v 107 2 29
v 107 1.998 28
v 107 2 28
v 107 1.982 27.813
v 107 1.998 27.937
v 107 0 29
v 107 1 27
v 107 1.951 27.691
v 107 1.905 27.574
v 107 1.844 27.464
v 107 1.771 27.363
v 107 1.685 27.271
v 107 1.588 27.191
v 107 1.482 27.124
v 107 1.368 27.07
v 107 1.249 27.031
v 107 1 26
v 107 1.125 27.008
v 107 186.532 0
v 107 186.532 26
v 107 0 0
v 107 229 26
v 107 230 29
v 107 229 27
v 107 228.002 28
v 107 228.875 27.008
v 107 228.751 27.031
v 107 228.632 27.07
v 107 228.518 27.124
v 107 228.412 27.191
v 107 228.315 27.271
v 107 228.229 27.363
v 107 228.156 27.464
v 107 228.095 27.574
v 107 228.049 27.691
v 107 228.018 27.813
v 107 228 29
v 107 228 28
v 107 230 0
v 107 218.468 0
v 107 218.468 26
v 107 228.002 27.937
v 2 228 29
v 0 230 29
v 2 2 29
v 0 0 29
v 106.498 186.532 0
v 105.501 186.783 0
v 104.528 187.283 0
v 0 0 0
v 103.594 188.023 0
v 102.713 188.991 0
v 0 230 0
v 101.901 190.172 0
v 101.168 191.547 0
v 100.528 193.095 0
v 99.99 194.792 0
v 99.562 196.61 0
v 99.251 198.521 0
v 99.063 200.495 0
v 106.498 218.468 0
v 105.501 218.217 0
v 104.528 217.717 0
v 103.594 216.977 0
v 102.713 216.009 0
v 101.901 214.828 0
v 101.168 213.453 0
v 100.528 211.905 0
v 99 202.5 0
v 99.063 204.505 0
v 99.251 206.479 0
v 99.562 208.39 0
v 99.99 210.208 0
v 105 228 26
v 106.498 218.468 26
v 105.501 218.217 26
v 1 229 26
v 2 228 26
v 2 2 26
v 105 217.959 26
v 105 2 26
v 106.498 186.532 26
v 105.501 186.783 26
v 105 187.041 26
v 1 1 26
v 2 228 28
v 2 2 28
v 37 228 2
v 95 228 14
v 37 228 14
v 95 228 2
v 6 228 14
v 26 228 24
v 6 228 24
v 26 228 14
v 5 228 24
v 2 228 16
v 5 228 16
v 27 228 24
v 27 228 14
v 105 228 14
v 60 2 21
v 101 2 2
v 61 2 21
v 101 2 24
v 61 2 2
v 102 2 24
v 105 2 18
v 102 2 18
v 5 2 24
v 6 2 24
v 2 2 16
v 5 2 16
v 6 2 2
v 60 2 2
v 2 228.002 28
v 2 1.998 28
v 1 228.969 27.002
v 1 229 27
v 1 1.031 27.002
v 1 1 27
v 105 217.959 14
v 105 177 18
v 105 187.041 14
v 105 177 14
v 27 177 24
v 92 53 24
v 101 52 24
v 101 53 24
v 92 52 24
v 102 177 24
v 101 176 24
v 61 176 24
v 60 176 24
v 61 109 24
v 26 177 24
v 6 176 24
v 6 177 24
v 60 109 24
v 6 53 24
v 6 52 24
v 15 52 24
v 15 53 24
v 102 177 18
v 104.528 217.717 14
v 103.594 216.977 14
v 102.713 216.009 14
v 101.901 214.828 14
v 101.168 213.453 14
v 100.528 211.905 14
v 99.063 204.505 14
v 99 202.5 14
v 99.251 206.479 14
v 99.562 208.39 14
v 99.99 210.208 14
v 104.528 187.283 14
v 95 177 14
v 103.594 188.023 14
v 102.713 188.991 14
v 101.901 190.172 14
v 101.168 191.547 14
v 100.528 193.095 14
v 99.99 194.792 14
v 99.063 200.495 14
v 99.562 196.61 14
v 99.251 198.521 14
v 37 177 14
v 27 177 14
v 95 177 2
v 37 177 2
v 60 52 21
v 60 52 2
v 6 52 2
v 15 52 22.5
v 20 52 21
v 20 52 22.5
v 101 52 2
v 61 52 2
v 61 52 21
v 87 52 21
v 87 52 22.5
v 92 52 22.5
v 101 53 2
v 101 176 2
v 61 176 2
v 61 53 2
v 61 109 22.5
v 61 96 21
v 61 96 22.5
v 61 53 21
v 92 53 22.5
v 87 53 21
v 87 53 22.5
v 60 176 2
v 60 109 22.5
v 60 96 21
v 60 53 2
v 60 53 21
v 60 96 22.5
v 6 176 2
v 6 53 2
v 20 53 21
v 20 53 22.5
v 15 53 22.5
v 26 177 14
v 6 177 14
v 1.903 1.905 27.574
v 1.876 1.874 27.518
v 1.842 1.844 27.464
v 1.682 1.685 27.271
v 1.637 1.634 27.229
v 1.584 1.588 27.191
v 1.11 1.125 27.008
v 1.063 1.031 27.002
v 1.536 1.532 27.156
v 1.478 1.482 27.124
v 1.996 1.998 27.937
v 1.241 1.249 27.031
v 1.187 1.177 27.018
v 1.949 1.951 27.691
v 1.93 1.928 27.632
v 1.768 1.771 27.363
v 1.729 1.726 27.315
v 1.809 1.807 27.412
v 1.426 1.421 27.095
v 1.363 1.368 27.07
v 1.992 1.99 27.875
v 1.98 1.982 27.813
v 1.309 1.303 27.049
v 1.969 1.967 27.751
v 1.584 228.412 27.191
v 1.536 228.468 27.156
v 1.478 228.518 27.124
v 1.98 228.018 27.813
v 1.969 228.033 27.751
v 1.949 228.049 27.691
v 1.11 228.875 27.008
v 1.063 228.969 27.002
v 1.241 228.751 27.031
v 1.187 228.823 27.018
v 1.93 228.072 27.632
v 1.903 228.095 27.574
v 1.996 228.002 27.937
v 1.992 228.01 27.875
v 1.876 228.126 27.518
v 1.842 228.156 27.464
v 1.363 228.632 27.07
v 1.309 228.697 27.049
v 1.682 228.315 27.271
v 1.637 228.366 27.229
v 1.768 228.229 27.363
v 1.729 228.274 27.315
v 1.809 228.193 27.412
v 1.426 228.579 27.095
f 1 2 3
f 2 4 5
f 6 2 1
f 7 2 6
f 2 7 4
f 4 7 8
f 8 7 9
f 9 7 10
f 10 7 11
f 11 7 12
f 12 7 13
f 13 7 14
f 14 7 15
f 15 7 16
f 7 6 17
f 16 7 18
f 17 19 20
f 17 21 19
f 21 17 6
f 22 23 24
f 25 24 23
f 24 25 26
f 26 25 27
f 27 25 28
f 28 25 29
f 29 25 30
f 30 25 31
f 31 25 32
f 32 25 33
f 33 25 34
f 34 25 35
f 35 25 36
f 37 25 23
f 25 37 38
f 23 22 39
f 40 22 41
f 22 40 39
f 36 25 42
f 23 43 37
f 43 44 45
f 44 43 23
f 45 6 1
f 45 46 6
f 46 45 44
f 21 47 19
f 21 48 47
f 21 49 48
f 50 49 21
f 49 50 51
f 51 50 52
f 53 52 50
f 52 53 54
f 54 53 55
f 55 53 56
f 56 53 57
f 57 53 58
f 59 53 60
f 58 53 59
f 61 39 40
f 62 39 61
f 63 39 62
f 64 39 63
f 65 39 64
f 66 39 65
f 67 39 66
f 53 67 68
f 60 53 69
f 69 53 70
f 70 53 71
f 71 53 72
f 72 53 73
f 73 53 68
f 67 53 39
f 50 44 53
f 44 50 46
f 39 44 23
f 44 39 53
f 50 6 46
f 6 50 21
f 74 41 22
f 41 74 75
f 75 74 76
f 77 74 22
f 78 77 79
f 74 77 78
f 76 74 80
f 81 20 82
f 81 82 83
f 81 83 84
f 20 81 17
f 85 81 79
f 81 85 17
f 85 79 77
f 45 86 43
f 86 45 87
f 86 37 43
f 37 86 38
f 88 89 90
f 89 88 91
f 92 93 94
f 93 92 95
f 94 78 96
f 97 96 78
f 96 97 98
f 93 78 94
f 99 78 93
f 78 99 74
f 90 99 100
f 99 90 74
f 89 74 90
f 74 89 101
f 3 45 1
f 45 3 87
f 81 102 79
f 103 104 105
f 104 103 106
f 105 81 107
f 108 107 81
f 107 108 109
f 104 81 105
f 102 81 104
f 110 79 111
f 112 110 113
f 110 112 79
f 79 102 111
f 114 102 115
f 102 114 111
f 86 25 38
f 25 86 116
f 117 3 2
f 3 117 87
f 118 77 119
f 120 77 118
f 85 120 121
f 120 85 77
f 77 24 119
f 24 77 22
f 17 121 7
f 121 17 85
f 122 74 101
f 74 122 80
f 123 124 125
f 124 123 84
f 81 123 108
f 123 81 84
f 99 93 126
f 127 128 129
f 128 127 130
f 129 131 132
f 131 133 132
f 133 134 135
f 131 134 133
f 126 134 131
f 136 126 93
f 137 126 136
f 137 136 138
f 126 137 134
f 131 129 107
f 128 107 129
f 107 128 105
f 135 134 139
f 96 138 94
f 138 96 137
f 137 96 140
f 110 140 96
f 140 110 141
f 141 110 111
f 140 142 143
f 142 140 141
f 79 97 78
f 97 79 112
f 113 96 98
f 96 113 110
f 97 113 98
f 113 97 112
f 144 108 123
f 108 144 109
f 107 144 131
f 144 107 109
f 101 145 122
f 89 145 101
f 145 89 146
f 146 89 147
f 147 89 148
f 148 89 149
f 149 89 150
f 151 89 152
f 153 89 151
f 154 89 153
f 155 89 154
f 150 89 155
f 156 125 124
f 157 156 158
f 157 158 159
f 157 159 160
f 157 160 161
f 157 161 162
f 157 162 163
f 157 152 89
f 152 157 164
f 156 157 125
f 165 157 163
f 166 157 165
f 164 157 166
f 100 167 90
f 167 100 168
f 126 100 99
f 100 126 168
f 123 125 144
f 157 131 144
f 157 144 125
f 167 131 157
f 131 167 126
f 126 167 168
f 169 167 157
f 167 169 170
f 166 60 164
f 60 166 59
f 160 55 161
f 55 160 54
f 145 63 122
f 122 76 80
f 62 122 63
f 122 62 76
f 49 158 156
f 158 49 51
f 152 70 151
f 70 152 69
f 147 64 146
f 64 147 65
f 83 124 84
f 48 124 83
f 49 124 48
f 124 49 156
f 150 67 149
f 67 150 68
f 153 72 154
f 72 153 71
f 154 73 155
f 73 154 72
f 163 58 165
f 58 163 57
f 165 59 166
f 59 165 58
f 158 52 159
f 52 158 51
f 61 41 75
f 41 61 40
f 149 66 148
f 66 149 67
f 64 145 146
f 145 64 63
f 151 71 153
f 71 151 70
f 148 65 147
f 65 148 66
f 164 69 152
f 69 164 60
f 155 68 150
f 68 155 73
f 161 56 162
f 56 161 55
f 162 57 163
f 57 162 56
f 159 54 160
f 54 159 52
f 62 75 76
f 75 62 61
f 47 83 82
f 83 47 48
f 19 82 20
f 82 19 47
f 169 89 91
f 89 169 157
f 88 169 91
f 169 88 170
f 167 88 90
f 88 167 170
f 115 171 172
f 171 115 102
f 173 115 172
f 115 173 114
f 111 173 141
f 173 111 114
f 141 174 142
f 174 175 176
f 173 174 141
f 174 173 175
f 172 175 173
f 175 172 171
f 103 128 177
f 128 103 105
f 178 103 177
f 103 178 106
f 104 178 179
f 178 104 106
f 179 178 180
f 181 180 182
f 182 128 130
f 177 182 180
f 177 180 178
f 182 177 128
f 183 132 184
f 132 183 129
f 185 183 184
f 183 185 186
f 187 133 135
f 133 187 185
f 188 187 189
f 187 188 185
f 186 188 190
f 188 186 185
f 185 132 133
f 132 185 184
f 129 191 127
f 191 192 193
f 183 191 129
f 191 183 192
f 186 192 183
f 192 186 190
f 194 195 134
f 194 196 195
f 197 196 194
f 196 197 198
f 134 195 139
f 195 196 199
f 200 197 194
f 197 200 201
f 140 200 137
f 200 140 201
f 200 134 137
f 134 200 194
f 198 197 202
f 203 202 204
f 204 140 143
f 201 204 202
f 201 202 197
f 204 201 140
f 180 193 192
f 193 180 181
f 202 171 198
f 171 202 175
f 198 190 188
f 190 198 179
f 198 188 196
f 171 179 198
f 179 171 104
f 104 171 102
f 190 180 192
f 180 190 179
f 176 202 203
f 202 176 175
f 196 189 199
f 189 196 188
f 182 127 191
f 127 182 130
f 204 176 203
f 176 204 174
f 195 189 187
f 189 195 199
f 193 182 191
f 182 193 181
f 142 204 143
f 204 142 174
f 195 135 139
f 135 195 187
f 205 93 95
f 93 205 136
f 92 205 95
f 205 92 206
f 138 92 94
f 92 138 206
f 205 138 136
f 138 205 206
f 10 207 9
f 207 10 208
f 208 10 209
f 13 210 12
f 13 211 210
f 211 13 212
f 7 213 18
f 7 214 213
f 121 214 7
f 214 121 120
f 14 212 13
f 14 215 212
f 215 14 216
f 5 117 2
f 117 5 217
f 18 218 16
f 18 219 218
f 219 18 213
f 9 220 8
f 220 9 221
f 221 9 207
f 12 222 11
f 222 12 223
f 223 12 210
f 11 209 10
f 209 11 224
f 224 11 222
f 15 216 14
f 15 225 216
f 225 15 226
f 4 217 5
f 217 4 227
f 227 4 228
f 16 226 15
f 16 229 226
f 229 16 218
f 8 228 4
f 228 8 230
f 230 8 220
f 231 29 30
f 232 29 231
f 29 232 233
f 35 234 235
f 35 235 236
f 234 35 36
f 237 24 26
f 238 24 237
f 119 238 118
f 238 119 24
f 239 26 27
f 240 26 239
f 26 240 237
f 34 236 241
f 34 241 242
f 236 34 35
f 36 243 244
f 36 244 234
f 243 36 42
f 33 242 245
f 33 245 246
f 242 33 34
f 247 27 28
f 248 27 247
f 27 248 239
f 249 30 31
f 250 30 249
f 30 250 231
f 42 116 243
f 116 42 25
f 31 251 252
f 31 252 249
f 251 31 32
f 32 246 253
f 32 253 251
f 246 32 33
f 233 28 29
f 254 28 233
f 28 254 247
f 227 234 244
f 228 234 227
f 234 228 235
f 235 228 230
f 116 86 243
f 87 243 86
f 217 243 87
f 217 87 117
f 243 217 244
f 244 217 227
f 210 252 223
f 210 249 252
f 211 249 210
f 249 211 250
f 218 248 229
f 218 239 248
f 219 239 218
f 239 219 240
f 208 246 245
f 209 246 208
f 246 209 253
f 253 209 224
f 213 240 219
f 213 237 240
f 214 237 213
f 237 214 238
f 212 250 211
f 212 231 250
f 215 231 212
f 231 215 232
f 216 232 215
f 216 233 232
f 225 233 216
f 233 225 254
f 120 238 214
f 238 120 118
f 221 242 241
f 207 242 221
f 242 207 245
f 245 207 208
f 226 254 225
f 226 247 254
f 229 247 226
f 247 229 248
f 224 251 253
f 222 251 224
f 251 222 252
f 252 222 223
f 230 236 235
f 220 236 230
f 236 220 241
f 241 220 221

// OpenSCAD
OUT_X = 107;
OUT_Y = 230;
OUT_Z = 29;

FLOOR_PW = 2;
WALL_PW  = 2;

LID_PW = 3;
LID_SLIT = 1;

PAPER_PW = 2;


union(){
	difference(){
	
		cube([ OUT_X , OUT_Y , OUT_Z ]);
		
		// Lid Opening with opening on x axis
		translate([ WALL_PW , WALL_PW , OUT_Z-LID_PW ]) cube([ OUT_X , OUT_Y-2*WALL_PW , LID_PW+1 ]); 
		translate([ WALL_PW-LID_SLIT , WALL_PW-LID_SLIT , OUT_Z-LID_PW ]) 
			cube([ OUT_X , OUT_Y-2*(WALL_PW-LID_SLIT) , 2*LID_SLIT ]);
		
		// Console
		translate([ WALL_PW , WALL_PW , OUT_Z-LID_PW-PAPER_PW ]) cube([ OUT_X-2*WALL_PW , OUT_Y-2*WALL_PW , PAPER_PW+1 ]);
		
		// Trade Agreement
		TA_SLIT_Z = 8;
		TA_SLIT_X = 3;
		translate([ WALL_PW , WALL_PW , OUT_Z-LID_PW-PAPER_PW-TA_SLIT_Z ]) cube([ TA_SLIT_X, OUT_Y-2*WALL_PW , TA_SLIT_Z+1 ]);
		
		// Ascendancy
		A_SLIT_Z = 6;
		A_SLIT_X = 3;
		translate([ OUT_X-WALL_PW-A_SLIT_X , WALL_PW , OUT_Z-LID_PW-PAPER_PW-A_SLIT_Z ]) 
			cube([ A_SLIT_X, OUT_Y-2*WALL_PW , A_SLIT_Z+1 ]);
		
		// Advancements Cards
		AC_Y = 51;
		AC_X = 78;
		AC_Z = 10;
		translate([ OUT_X-AC_X-WALL_PW , OUT_Y-WALL_PW-AC_Y , OUT_Z-LID_PW-PAPER_PW-AC_Z ]) cube([ AC_X , AC_Y , AC_Z+1 ]);
		translate([ OUT_X , OUT_Y-WALL_PW-0.5*AC_Y , -1 ]) scale([1,2,1]) cylinder(OUT_Z+1,r=8,$fn=50);
		// SpaceStations
		translate([ OUT_X-AC_X-WALL_PW+10 , OUT_Y-WALL_PW-AC_Y , FLOOR_PW ]) cube([ AC_X-20 , AC_Y , OUT_Z ]);
		
		// Ships
		S_X = OUT_X-2*WALL_PW-TA_SLIT_X-A_SLIT_X-2;
		S_Y = 50;
		translate([ WALL_PW+TA_SLIT_X+1 , WALL_PW , FLOOR_PW ]) 
			cube([ OUT_X-2*WALL_PW-TA_SLIT_X-A_SLIT_X-F_X-3 , S_Y , OUT_Z ]);
		translate([ WALL_PW+TA_SLIT_X+1+OUT_X-2*WALL_PW-TA_SLIT_X-A_SLIT_X-F_X-3+1 , WALL_PW , FLOOR_PW ])
			cube([ F_X , S_Y , OUT_Z ]);
		
		// Fleets
		F_X = 40;
		translate([ OUT_X-WALL_PW-A_SLIT_X-1-F_X , WALL_PW+S_Y+1 , FLOOR_PW ]) 
			cube([ F_X , OUT_Y-2*WALL_PW-S_Y-AC_Y-2 , OUT_Z ]);
		
		// Nodes
		translate([ WALL_PW+TA_SLIT_X+1 , WALL_PW+S_Y+1 , FLOOR_PW ]) 
			cube([ OUT_X-2*WALL_PW-TA_SLIT_X-A_SLIT_X-F_X-3 , OUT_Y-2*WALL_PW-S_Y-AC_Y-2 , OUT_Z ]);
			
		// Cards
		CS_X = 67;
		CS_Y = 94;
		CS_Z = 1.5;
		
		CB_X = 77;
		CB_Y = 107;
		CB_Z = 1.5;
		translate([ 0.5*OUT_X-0.5*CS_X , WALL_PW , OUT_Z-LID_PW-PAPER_PW-CS_Z-CB_Z ]) cube([ CS_X , CS_Y , OUT_Z ]);
		translate([ 0.5*OUT_X-0.5*CB_X , WALL_PW , OUT_Z-LID_PW-PAPER_PW-CB_Z ]) cube([ CB_X , CB_Y , OUT_Z ]);
		
		// Bonus
		B_Z = 10;
		translate([ WALL_PW+TA_SLIT_X+1 , OUT_Y-WALL_PW-AC_Y , OUT_Z-LID_PW-PAPER_PW-B_Z ]) 
			cube([ OUT_X-2*WALL_PW-AC_X-2-TA_SLIT_X , AC_Y , B_Z+1 ]);
		
	};
	translate([ 0 , 1 , OUT_Z-1 ]) rotate([0,90,0]) cylinder(OUT_X,r=1,$fn=50);
	translate([ 0 , OUT_Y-1 , OUT_Z-1 ]) rotate([0,90,0]) cylinder(OUT_X,r=1,$fn=50);
	
	translate([ 1 , 1 , OUT_Z-1 ]) rotate([-90,0,0]) cylinder(OUT_Y-1,r=1,$fn=50);
};
